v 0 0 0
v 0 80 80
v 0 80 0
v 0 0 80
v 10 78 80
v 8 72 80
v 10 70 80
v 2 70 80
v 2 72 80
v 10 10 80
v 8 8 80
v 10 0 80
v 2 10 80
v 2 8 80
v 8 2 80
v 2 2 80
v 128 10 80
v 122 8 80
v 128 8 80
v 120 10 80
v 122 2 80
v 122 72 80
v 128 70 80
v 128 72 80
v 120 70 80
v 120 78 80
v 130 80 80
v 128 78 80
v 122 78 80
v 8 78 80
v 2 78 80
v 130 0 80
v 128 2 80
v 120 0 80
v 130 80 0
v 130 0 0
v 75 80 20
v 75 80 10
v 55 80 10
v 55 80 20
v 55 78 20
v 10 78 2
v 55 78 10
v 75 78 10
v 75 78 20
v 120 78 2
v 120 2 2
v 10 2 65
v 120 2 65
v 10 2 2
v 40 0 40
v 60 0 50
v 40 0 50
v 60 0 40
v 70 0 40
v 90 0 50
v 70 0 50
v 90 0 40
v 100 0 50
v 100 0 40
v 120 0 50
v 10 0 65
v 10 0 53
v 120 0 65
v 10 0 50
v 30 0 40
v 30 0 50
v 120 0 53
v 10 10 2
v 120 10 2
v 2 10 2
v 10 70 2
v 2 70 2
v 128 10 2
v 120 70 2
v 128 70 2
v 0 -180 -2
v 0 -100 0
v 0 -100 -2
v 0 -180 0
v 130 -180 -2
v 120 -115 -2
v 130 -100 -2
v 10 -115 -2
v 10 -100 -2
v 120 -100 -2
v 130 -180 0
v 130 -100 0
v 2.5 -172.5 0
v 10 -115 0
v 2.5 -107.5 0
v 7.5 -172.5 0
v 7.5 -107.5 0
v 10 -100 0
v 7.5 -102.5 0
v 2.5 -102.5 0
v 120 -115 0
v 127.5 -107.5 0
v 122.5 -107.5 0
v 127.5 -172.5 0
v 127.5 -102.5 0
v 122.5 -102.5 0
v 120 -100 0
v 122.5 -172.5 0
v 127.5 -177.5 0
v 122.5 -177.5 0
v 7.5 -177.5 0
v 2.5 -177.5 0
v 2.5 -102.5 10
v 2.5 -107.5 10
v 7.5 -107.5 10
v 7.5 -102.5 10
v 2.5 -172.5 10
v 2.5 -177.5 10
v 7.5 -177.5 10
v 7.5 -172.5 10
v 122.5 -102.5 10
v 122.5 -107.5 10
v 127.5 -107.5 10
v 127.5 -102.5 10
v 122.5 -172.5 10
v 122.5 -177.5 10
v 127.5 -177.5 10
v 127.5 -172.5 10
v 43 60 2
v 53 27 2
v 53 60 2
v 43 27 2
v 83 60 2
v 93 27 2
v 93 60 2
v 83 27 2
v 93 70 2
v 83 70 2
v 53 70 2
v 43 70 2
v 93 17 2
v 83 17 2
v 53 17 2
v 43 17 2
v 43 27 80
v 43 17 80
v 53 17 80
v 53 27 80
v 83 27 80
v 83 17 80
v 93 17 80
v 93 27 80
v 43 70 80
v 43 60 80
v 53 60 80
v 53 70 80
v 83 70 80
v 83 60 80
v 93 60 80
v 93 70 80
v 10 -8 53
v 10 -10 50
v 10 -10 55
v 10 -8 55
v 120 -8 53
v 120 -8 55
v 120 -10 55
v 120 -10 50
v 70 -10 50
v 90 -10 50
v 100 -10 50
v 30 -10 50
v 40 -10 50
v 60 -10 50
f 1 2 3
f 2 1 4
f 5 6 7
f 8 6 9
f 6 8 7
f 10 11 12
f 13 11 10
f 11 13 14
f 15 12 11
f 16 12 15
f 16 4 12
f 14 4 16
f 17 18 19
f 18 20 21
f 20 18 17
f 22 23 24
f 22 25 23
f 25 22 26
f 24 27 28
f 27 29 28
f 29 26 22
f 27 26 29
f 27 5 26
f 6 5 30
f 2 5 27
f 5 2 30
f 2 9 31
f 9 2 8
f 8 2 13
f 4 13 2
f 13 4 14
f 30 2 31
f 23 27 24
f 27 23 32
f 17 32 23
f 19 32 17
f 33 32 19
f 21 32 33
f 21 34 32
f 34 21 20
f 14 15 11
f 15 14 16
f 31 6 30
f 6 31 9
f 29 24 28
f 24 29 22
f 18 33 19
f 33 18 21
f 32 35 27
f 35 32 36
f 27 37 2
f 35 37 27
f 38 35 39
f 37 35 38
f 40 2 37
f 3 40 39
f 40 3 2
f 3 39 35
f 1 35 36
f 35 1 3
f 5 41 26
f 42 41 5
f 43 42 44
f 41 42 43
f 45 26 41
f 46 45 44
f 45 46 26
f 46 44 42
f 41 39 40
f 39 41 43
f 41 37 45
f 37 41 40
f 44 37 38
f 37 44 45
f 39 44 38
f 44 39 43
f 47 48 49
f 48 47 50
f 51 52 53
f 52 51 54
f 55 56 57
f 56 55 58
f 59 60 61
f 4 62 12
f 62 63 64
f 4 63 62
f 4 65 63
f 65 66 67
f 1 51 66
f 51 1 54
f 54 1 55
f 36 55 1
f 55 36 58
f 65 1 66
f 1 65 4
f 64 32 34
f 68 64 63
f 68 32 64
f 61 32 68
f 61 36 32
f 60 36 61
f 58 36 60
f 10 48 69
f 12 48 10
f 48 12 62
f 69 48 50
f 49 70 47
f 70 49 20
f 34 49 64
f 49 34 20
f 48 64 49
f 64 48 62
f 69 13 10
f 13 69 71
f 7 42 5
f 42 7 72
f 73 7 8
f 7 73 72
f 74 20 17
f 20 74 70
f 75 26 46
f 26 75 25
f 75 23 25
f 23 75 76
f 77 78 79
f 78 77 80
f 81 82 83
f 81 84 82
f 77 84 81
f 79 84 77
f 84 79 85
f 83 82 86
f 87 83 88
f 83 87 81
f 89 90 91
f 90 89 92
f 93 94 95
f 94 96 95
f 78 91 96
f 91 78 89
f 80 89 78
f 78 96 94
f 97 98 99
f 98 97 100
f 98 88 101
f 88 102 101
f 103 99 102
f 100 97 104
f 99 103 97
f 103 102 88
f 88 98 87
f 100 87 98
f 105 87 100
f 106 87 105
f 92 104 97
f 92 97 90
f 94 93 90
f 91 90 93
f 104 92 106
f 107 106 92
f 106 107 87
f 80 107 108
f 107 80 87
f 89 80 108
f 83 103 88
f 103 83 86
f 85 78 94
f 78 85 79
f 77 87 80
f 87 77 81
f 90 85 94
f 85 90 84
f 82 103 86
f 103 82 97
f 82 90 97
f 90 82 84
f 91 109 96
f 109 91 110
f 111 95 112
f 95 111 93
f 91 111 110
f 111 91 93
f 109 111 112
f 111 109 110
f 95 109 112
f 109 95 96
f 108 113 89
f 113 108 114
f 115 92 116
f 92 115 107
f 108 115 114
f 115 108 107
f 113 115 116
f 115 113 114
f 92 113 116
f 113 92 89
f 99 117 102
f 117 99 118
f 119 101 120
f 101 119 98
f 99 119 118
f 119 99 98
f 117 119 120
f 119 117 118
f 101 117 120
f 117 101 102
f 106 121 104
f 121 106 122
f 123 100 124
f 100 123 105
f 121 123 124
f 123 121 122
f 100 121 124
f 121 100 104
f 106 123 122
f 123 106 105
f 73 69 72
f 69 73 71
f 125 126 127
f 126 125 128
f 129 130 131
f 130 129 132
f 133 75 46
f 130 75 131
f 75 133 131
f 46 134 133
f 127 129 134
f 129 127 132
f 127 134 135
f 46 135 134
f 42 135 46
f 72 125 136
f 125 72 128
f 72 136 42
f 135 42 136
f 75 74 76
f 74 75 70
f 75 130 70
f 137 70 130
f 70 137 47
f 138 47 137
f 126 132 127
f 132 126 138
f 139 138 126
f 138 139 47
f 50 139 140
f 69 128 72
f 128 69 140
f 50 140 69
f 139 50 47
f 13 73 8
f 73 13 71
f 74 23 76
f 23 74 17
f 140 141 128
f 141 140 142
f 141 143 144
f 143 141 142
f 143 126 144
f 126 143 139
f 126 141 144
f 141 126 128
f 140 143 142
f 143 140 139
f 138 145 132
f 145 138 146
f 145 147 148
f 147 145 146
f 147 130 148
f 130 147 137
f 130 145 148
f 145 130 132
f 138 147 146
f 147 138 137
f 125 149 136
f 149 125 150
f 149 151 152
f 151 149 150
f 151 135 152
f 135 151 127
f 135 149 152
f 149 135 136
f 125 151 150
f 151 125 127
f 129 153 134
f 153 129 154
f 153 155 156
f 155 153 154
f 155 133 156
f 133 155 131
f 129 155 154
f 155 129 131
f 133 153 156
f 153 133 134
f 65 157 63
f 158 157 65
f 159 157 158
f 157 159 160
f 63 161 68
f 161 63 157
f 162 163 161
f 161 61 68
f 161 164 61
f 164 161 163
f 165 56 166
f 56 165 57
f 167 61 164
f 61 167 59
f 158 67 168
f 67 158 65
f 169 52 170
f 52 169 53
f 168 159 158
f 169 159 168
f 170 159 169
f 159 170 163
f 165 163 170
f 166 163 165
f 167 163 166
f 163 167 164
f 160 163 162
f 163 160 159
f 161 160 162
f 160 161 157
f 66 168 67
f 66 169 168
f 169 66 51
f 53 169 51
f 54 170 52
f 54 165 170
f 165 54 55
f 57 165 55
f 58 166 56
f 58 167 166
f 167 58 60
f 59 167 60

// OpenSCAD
 module kistarto(l, w, h){
      rotate([90, 0, 0]) polyhedron(
               points=[[0,0,0], [l,0,0], [l,w,0], [0,w,0], [0,w,h], [l,w,h]],
              faces=[[0,1,2,3],[5,4,3,2],[0,4,5,1],[0,3,4],[5,2,1]]
              );
}

layerDepth=2;
height=80;
width=130;
//alja
cube([width, height, layerDepth]);
//bal oldala
cube([layerDepth, height, height]);

//jobb oldala
translate([128, 0, 0]) cube([layerDepth, height, height]);
//eleje
difference(){
cube([width, layerDepth, height]);
translate([10,0,65]) cube([110,layerDepth, 15]);
}

// nyomtatáshoz mellé tevés
rotate([180]){
translate([0, 100, 0]){
//elenorzeshez 90 megelelve 78 rajta
//    translate([0, 0, 78]){
    //teteje
difference(){
   translate([0, 0, 0])
    cube([width, height, layerDepth]);
    translate([10, 0, 0]) 
    cube([110, 15, layerDepth]);
}
//bal elso
    translate([2.5, 2.5, -8]) cube([5, 5, 8]);
//bal hatso
    translate([2.5, 72.5, -8]) cube([5, 5, 8]);
//jobb elso
    translate([122.5, 2.5, -8]) cube([5, 5, 8]);
//bal elso
    translate([122.5, 72.5, -8]) cube([5, 5, 8]);
}
}


//belso tamasz
//bal elos
translate([43, 17, 0]) cube([10, 10, height]);
//jobb elso
translate([83, 17, 0]) cube([10, 10, height]);
//bal hatso
translate([43, 60, 0]) cube([10, 10, height]);
//jobb hatso
translate([83, 60, 0]) cube([10, 10, height]);

//4 szélso cucc
//bal eslo
difference(){
    cube([10, 10, height]);
    translate([0, 0, 80]) cube([8, 8, height-11]);
}
//bal hatso
difference(){
    translate([0, 70, 0]) cube([10, 10, height]);
    translate([0, 72, 80]) cube([8, 8, height-11]);
}
//jobb elso
difference(){
    translate([120, 0, 0]) cube([10, 10, height]);
    translate([122, 0, 80]) cube([8, 8, height-11]);
}
//jobb hatso
difference(){
    translate([120, 70, 0]) cube([10, 10, height]);
    translate([122, 72, 80]) cube([8, 8, height-11]);
}
//elso kis biszbasz
translate([10, -10, 50]) cube([110, 12, 3]);
translate([10, -10, 50]) cube([110, layerDepth, 5]);
//haromszög alatamsz
//ball
translate([30, 0, 40]) kistarto(10,10,10);
//kozep
translate([60, 0, 40]) kistarto(10,10,10);
//jobb
translate([90, 0, 40]) kistarto(10,10,10);


//hatulja
difference(){
translate([0, 78, 0]) cube([width, layerDepth, height]);
translate([55, 78, 10]) cube([20, layerDepth, 10]);
}
 
      
